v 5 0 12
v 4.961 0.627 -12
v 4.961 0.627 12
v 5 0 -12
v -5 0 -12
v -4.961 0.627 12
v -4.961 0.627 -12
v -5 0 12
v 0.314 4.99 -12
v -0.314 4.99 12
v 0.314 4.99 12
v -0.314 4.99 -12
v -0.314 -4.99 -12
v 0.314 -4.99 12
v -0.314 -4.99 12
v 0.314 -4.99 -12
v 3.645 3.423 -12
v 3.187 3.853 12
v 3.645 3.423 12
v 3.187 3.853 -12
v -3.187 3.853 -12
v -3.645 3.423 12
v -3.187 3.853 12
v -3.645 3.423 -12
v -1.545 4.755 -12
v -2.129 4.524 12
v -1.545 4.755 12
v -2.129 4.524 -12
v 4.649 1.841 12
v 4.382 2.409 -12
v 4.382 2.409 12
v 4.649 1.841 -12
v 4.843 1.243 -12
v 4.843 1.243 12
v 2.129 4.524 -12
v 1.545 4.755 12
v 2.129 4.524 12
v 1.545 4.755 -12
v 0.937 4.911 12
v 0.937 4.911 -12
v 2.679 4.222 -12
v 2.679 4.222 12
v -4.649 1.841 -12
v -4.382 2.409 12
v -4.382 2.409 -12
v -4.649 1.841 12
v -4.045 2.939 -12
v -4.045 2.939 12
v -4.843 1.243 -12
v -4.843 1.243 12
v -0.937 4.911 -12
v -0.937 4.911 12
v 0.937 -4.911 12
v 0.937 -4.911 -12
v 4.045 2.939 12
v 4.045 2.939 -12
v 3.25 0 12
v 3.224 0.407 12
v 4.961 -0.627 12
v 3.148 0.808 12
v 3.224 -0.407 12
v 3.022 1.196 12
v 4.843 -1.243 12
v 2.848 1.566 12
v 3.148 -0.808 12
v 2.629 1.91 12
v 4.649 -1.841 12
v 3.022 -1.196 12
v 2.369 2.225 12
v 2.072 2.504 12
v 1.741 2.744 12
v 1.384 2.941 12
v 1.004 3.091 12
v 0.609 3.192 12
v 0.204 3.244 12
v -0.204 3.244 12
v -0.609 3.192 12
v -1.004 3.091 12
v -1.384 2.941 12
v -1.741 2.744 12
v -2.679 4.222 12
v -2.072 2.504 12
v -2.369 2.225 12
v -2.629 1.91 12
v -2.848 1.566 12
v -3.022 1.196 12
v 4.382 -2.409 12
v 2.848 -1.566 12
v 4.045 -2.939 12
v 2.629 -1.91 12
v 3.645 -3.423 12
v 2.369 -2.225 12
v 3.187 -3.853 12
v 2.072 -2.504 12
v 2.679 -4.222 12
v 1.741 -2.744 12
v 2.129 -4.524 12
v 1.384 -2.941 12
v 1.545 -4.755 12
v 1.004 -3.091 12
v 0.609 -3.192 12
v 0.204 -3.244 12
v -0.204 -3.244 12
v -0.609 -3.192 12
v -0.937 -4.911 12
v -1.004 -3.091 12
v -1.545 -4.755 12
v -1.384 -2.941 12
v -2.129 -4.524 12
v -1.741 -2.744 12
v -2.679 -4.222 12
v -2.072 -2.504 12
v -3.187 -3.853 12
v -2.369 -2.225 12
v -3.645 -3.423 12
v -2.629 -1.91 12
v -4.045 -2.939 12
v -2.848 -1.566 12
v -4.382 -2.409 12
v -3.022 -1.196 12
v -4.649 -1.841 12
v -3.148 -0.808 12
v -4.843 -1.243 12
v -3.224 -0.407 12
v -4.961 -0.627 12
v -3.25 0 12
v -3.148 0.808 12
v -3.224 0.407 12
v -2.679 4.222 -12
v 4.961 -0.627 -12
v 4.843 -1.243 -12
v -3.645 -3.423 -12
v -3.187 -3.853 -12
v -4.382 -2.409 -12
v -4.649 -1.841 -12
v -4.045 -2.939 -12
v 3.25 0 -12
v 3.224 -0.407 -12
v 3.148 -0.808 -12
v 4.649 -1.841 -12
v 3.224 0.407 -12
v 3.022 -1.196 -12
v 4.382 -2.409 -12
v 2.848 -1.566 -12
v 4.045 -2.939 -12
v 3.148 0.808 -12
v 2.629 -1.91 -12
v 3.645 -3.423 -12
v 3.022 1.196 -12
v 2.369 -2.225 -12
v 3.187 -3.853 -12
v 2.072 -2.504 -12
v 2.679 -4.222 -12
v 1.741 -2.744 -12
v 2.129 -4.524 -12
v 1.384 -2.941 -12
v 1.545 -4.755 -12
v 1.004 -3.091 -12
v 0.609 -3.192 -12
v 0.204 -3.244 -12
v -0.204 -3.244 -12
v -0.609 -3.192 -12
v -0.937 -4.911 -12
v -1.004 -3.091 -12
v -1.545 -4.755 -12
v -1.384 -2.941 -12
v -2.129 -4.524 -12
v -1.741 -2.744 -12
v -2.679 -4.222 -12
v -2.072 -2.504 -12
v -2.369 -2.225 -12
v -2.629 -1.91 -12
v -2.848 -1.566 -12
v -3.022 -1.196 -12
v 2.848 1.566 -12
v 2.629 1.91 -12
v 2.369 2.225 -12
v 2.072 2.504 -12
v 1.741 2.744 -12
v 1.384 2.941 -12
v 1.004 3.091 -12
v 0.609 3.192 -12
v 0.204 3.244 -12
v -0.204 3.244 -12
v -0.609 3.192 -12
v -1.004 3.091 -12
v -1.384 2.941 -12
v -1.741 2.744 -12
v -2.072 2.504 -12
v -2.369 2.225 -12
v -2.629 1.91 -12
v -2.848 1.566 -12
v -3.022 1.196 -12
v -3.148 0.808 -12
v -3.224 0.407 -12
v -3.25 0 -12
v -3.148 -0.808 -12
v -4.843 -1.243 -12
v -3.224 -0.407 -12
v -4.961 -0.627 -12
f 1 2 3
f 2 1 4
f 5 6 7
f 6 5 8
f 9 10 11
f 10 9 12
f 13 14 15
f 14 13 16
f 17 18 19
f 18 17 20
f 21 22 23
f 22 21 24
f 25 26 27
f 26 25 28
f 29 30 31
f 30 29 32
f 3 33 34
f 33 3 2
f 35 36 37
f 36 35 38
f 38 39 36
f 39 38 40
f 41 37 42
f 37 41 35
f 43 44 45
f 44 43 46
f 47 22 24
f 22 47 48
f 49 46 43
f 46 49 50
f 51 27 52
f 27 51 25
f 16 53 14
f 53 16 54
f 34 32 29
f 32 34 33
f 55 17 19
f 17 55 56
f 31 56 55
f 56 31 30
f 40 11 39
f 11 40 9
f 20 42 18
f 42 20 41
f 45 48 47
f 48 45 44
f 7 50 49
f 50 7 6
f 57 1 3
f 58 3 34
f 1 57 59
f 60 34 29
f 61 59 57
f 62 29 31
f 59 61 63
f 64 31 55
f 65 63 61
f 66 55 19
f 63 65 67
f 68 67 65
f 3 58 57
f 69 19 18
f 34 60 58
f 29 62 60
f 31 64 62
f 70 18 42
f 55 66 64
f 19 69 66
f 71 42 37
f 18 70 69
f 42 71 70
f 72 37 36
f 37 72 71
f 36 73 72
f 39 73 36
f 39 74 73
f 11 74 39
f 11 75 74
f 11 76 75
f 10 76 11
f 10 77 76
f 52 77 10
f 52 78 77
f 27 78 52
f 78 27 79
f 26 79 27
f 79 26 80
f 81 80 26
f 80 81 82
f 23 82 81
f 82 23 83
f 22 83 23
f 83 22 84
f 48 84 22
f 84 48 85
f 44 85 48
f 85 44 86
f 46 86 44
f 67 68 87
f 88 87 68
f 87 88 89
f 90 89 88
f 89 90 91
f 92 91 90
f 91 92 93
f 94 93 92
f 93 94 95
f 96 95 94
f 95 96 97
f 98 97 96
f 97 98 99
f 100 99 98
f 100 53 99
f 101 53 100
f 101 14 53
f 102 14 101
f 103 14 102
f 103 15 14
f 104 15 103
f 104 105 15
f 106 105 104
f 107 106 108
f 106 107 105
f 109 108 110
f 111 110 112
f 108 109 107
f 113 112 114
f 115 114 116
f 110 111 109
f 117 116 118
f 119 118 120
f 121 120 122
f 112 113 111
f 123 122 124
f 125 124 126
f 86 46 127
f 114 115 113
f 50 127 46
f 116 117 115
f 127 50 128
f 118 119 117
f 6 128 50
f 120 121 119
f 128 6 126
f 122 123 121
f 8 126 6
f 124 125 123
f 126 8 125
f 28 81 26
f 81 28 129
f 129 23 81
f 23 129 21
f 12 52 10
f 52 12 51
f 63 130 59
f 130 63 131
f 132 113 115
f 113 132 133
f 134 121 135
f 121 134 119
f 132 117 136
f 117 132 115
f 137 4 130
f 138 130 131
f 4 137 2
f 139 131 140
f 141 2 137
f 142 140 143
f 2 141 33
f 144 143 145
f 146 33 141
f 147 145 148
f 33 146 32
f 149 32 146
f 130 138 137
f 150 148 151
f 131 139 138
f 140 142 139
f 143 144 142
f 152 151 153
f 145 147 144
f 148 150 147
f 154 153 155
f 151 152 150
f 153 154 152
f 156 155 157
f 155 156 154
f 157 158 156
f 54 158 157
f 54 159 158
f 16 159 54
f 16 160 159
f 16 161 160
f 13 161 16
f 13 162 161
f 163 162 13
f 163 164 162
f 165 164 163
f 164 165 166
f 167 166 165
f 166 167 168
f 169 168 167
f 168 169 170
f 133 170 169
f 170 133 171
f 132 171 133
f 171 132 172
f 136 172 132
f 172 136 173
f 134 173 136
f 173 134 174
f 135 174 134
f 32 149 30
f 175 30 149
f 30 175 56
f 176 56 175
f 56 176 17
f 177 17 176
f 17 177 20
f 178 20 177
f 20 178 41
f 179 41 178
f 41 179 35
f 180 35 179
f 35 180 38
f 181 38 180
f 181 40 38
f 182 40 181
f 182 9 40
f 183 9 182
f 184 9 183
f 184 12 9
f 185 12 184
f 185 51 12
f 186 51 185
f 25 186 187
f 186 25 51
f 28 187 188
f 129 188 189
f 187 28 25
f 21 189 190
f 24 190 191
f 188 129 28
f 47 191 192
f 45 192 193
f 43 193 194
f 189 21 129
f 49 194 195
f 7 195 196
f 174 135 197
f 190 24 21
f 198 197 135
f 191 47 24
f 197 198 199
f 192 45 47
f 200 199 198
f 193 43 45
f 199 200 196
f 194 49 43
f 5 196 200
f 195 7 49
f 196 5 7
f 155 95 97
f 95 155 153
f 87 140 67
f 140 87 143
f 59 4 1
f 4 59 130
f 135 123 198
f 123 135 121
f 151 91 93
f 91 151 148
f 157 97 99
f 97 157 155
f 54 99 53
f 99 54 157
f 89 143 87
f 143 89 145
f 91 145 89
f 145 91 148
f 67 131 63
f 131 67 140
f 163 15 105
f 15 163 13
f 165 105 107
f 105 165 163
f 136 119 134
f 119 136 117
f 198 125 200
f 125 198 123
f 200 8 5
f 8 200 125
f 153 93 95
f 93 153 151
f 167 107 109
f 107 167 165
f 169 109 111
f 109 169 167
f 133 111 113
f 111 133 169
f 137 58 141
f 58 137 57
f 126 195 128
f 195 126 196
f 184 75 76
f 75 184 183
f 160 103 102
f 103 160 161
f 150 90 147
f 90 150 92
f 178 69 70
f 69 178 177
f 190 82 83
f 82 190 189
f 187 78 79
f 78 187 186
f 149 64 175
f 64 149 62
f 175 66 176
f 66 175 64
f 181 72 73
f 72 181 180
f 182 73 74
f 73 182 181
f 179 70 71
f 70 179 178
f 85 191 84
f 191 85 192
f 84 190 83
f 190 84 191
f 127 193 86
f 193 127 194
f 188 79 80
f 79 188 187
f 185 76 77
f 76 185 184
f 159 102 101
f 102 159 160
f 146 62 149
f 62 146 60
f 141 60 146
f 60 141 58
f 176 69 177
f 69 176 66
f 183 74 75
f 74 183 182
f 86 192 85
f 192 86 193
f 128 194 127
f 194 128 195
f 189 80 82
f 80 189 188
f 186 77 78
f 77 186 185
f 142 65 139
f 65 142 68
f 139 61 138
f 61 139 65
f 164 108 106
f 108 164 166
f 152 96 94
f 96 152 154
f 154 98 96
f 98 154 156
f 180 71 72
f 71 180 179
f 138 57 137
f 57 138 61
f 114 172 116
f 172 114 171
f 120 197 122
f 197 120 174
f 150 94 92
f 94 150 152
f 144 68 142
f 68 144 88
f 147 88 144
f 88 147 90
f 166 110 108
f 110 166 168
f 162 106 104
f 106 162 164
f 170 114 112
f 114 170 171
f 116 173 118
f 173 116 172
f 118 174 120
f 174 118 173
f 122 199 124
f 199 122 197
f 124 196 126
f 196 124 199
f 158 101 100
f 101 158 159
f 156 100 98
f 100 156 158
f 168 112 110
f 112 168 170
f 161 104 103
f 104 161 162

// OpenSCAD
$fn = 50;


difference() {
	union() {
		translate(v = [0, 0, -12.0000000000]) {
			cylinder(h = 24, r = 5.0000000000);
		}
	}
	union() {
		translate(v = [0, 0, -100.0000000000]) {
			cylinder(h = 200, r = 3.2500000000);
		}
	}
}
